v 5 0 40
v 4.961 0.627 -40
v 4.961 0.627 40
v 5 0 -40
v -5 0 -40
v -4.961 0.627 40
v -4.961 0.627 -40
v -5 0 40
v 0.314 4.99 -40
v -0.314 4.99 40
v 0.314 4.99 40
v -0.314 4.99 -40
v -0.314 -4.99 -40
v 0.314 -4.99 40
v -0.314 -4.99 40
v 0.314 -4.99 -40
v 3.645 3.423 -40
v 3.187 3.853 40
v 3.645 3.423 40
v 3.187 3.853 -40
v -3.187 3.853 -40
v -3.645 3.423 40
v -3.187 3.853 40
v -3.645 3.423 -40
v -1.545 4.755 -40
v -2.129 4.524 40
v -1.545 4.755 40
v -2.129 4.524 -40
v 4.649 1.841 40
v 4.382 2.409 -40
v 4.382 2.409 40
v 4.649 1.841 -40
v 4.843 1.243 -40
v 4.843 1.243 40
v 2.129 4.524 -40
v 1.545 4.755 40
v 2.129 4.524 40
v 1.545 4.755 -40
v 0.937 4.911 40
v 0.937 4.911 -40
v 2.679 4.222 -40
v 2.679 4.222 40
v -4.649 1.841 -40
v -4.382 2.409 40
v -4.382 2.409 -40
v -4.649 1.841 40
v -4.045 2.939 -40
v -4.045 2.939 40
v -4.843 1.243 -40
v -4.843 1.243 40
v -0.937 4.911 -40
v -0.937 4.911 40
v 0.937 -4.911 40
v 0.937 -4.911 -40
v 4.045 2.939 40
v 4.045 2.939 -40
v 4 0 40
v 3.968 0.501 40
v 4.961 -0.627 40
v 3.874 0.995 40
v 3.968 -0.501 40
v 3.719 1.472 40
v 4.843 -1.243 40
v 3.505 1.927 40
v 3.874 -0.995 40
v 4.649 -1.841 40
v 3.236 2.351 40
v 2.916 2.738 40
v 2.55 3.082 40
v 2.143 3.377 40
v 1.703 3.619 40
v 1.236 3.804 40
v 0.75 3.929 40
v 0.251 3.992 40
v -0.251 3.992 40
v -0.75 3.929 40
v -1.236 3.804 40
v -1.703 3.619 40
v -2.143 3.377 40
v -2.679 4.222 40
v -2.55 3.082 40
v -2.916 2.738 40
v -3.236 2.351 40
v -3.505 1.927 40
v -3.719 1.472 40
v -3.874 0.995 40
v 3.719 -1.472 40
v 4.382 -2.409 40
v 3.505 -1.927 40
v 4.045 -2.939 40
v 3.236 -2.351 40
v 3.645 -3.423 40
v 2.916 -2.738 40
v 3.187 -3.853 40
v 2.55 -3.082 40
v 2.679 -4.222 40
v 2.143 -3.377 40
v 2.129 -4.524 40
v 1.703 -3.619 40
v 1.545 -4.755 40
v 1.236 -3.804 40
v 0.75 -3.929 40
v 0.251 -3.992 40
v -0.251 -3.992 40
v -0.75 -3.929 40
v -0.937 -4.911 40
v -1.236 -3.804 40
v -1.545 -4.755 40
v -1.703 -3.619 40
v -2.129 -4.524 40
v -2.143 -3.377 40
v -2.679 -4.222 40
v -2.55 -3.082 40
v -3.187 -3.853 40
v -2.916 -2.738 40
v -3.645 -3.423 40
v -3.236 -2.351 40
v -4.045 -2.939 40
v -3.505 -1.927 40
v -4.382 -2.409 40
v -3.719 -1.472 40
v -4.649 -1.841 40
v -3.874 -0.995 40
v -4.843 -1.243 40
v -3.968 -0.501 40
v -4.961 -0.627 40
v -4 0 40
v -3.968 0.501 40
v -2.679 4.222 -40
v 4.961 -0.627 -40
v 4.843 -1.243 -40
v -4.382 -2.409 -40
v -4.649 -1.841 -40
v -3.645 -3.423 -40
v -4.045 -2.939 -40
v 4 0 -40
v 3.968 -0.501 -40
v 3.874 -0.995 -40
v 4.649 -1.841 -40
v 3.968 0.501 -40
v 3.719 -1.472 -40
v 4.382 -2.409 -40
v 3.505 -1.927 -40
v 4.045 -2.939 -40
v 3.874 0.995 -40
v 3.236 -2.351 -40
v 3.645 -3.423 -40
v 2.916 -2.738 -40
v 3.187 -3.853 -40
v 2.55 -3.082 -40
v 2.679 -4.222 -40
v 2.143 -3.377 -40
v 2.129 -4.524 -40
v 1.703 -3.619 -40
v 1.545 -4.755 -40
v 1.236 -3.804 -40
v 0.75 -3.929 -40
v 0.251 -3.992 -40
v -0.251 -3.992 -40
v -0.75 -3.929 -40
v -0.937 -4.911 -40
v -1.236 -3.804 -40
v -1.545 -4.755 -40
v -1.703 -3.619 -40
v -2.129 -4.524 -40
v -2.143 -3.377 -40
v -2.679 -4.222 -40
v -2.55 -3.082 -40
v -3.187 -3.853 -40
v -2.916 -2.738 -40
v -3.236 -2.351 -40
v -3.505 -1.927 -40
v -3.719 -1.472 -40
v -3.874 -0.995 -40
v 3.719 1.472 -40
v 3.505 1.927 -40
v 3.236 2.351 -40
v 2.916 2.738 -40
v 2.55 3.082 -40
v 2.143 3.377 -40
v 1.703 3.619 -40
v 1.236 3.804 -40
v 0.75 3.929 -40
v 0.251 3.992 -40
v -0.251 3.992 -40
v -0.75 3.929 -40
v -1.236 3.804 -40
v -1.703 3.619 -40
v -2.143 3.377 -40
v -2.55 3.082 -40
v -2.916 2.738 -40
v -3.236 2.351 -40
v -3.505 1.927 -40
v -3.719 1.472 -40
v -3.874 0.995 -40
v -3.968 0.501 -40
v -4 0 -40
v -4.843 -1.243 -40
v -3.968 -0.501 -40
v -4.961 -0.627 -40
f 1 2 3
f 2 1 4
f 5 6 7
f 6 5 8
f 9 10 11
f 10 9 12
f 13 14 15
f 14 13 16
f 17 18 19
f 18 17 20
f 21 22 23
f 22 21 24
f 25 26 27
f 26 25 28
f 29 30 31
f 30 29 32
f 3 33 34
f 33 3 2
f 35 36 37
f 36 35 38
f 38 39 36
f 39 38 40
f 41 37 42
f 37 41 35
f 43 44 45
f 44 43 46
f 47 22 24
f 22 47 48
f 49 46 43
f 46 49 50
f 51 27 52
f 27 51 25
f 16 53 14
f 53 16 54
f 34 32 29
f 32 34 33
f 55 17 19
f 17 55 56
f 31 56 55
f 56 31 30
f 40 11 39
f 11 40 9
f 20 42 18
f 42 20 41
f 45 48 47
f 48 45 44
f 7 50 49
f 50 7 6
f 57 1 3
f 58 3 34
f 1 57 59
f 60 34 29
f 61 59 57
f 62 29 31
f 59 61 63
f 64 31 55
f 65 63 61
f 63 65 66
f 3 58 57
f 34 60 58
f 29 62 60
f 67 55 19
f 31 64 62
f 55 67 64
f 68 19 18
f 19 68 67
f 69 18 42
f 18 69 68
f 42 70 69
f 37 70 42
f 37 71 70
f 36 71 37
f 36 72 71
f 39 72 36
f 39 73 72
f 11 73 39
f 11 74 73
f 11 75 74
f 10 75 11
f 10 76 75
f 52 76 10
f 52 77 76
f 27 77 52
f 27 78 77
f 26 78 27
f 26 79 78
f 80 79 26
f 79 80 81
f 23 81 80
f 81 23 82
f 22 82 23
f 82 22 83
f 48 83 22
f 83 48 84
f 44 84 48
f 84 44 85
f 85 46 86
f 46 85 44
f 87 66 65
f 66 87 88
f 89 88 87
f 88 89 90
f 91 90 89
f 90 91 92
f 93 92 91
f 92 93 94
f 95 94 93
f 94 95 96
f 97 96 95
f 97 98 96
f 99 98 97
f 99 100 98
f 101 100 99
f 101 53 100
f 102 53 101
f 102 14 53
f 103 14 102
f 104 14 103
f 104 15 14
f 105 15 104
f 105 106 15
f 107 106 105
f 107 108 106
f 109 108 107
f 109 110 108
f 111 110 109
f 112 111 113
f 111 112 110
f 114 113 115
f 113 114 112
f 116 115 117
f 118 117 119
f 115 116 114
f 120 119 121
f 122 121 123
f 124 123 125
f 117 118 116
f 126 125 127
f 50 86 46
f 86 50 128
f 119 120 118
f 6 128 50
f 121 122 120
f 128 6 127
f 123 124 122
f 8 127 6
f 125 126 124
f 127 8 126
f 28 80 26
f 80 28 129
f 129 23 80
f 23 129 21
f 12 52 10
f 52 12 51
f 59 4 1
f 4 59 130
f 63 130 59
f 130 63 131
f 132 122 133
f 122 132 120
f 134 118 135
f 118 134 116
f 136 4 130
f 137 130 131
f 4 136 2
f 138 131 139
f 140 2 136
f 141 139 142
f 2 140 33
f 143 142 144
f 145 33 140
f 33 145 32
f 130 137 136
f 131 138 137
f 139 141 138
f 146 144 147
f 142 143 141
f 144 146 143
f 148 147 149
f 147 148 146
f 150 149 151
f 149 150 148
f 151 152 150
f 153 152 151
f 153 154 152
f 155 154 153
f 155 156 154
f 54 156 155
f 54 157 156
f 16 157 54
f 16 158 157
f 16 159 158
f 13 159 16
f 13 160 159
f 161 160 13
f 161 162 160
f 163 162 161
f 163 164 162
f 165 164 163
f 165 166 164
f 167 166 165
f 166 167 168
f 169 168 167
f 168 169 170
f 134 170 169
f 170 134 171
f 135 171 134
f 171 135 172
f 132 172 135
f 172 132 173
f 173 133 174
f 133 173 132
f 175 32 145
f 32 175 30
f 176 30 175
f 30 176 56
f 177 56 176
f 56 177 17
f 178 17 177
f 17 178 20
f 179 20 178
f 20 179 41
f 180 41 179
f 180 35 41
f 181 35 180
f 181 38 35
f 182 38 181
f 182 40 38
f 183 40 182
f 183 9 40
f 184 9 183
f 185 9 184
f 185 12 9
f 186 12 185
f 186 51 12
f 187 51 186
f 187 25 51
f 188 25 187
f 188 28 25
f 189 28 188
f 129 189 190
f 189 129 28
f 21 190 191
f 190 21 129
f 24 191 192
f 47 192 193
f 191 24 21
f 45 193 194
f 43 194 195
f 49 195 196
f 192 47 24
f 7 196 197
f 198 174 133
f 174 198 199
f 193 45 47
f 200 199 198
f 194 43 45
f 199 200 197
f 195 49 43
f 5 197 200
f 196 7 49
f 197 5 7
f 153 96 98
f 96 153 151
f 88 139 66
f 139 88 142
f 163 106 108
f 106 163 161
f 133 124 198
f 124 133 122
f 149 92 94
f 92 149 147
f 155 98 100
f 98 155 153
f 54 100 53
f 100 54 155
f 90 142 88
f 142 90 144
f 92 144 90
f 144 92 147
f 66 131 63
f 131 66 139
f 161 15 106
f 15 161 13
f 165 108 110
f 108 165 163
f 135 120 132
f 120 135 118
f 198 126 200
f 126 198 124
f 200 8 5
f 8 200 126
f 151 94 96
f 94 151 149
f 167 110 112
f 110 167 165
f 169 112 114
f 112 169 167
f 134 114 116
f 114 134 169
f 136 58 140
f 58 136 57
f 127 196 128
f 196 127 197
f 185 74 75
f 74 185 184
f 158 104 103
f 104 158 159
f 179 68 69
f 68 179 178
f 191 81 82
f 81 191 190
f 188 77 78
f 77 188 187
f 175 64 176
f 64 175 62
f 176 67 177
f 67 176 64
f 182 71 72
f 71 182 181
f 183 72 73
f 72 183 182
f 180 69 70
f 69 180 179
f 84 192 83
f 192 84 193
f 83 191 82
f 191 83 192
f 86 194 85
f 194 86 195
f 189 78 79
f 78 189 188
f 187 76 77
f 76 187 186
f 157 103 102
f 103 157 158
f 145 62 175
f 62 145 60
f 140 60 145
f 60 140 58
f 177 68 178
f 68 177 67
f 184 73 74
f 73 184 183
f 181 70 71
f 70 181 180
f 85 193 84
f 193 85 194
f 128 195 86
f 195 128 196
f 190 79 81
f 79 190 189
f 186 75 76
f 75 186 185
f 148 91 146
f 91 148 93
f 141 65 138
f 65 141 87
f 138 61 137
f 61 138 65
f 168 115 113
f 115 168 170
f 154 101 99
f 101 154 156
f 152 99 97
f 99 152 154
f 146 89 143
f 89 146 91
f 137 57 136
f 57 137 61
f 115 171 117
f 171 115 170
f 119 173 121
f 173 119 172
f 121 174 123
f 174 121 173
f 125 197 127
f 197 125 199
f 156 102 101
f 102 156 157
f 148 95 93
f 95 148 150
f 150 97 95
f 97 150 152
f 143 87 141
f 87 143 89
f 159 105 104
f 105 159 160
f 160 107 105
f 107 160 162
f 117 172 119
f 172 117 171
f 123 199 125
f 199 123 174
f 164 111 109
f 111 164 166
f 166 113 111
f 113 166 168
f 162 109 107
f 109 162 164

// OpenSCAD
$fn = 50;


difference() {
	union() {
		translate(v = [0, 0, -40.0000000000]) {
			cylinder(h = 80, r = 5.0000000000);
		}
	}
	union() {
		translate(v = [0, 0, -100.0000000000]) {
			cylinder(h = 200, r = 4);
		}
	}
}
